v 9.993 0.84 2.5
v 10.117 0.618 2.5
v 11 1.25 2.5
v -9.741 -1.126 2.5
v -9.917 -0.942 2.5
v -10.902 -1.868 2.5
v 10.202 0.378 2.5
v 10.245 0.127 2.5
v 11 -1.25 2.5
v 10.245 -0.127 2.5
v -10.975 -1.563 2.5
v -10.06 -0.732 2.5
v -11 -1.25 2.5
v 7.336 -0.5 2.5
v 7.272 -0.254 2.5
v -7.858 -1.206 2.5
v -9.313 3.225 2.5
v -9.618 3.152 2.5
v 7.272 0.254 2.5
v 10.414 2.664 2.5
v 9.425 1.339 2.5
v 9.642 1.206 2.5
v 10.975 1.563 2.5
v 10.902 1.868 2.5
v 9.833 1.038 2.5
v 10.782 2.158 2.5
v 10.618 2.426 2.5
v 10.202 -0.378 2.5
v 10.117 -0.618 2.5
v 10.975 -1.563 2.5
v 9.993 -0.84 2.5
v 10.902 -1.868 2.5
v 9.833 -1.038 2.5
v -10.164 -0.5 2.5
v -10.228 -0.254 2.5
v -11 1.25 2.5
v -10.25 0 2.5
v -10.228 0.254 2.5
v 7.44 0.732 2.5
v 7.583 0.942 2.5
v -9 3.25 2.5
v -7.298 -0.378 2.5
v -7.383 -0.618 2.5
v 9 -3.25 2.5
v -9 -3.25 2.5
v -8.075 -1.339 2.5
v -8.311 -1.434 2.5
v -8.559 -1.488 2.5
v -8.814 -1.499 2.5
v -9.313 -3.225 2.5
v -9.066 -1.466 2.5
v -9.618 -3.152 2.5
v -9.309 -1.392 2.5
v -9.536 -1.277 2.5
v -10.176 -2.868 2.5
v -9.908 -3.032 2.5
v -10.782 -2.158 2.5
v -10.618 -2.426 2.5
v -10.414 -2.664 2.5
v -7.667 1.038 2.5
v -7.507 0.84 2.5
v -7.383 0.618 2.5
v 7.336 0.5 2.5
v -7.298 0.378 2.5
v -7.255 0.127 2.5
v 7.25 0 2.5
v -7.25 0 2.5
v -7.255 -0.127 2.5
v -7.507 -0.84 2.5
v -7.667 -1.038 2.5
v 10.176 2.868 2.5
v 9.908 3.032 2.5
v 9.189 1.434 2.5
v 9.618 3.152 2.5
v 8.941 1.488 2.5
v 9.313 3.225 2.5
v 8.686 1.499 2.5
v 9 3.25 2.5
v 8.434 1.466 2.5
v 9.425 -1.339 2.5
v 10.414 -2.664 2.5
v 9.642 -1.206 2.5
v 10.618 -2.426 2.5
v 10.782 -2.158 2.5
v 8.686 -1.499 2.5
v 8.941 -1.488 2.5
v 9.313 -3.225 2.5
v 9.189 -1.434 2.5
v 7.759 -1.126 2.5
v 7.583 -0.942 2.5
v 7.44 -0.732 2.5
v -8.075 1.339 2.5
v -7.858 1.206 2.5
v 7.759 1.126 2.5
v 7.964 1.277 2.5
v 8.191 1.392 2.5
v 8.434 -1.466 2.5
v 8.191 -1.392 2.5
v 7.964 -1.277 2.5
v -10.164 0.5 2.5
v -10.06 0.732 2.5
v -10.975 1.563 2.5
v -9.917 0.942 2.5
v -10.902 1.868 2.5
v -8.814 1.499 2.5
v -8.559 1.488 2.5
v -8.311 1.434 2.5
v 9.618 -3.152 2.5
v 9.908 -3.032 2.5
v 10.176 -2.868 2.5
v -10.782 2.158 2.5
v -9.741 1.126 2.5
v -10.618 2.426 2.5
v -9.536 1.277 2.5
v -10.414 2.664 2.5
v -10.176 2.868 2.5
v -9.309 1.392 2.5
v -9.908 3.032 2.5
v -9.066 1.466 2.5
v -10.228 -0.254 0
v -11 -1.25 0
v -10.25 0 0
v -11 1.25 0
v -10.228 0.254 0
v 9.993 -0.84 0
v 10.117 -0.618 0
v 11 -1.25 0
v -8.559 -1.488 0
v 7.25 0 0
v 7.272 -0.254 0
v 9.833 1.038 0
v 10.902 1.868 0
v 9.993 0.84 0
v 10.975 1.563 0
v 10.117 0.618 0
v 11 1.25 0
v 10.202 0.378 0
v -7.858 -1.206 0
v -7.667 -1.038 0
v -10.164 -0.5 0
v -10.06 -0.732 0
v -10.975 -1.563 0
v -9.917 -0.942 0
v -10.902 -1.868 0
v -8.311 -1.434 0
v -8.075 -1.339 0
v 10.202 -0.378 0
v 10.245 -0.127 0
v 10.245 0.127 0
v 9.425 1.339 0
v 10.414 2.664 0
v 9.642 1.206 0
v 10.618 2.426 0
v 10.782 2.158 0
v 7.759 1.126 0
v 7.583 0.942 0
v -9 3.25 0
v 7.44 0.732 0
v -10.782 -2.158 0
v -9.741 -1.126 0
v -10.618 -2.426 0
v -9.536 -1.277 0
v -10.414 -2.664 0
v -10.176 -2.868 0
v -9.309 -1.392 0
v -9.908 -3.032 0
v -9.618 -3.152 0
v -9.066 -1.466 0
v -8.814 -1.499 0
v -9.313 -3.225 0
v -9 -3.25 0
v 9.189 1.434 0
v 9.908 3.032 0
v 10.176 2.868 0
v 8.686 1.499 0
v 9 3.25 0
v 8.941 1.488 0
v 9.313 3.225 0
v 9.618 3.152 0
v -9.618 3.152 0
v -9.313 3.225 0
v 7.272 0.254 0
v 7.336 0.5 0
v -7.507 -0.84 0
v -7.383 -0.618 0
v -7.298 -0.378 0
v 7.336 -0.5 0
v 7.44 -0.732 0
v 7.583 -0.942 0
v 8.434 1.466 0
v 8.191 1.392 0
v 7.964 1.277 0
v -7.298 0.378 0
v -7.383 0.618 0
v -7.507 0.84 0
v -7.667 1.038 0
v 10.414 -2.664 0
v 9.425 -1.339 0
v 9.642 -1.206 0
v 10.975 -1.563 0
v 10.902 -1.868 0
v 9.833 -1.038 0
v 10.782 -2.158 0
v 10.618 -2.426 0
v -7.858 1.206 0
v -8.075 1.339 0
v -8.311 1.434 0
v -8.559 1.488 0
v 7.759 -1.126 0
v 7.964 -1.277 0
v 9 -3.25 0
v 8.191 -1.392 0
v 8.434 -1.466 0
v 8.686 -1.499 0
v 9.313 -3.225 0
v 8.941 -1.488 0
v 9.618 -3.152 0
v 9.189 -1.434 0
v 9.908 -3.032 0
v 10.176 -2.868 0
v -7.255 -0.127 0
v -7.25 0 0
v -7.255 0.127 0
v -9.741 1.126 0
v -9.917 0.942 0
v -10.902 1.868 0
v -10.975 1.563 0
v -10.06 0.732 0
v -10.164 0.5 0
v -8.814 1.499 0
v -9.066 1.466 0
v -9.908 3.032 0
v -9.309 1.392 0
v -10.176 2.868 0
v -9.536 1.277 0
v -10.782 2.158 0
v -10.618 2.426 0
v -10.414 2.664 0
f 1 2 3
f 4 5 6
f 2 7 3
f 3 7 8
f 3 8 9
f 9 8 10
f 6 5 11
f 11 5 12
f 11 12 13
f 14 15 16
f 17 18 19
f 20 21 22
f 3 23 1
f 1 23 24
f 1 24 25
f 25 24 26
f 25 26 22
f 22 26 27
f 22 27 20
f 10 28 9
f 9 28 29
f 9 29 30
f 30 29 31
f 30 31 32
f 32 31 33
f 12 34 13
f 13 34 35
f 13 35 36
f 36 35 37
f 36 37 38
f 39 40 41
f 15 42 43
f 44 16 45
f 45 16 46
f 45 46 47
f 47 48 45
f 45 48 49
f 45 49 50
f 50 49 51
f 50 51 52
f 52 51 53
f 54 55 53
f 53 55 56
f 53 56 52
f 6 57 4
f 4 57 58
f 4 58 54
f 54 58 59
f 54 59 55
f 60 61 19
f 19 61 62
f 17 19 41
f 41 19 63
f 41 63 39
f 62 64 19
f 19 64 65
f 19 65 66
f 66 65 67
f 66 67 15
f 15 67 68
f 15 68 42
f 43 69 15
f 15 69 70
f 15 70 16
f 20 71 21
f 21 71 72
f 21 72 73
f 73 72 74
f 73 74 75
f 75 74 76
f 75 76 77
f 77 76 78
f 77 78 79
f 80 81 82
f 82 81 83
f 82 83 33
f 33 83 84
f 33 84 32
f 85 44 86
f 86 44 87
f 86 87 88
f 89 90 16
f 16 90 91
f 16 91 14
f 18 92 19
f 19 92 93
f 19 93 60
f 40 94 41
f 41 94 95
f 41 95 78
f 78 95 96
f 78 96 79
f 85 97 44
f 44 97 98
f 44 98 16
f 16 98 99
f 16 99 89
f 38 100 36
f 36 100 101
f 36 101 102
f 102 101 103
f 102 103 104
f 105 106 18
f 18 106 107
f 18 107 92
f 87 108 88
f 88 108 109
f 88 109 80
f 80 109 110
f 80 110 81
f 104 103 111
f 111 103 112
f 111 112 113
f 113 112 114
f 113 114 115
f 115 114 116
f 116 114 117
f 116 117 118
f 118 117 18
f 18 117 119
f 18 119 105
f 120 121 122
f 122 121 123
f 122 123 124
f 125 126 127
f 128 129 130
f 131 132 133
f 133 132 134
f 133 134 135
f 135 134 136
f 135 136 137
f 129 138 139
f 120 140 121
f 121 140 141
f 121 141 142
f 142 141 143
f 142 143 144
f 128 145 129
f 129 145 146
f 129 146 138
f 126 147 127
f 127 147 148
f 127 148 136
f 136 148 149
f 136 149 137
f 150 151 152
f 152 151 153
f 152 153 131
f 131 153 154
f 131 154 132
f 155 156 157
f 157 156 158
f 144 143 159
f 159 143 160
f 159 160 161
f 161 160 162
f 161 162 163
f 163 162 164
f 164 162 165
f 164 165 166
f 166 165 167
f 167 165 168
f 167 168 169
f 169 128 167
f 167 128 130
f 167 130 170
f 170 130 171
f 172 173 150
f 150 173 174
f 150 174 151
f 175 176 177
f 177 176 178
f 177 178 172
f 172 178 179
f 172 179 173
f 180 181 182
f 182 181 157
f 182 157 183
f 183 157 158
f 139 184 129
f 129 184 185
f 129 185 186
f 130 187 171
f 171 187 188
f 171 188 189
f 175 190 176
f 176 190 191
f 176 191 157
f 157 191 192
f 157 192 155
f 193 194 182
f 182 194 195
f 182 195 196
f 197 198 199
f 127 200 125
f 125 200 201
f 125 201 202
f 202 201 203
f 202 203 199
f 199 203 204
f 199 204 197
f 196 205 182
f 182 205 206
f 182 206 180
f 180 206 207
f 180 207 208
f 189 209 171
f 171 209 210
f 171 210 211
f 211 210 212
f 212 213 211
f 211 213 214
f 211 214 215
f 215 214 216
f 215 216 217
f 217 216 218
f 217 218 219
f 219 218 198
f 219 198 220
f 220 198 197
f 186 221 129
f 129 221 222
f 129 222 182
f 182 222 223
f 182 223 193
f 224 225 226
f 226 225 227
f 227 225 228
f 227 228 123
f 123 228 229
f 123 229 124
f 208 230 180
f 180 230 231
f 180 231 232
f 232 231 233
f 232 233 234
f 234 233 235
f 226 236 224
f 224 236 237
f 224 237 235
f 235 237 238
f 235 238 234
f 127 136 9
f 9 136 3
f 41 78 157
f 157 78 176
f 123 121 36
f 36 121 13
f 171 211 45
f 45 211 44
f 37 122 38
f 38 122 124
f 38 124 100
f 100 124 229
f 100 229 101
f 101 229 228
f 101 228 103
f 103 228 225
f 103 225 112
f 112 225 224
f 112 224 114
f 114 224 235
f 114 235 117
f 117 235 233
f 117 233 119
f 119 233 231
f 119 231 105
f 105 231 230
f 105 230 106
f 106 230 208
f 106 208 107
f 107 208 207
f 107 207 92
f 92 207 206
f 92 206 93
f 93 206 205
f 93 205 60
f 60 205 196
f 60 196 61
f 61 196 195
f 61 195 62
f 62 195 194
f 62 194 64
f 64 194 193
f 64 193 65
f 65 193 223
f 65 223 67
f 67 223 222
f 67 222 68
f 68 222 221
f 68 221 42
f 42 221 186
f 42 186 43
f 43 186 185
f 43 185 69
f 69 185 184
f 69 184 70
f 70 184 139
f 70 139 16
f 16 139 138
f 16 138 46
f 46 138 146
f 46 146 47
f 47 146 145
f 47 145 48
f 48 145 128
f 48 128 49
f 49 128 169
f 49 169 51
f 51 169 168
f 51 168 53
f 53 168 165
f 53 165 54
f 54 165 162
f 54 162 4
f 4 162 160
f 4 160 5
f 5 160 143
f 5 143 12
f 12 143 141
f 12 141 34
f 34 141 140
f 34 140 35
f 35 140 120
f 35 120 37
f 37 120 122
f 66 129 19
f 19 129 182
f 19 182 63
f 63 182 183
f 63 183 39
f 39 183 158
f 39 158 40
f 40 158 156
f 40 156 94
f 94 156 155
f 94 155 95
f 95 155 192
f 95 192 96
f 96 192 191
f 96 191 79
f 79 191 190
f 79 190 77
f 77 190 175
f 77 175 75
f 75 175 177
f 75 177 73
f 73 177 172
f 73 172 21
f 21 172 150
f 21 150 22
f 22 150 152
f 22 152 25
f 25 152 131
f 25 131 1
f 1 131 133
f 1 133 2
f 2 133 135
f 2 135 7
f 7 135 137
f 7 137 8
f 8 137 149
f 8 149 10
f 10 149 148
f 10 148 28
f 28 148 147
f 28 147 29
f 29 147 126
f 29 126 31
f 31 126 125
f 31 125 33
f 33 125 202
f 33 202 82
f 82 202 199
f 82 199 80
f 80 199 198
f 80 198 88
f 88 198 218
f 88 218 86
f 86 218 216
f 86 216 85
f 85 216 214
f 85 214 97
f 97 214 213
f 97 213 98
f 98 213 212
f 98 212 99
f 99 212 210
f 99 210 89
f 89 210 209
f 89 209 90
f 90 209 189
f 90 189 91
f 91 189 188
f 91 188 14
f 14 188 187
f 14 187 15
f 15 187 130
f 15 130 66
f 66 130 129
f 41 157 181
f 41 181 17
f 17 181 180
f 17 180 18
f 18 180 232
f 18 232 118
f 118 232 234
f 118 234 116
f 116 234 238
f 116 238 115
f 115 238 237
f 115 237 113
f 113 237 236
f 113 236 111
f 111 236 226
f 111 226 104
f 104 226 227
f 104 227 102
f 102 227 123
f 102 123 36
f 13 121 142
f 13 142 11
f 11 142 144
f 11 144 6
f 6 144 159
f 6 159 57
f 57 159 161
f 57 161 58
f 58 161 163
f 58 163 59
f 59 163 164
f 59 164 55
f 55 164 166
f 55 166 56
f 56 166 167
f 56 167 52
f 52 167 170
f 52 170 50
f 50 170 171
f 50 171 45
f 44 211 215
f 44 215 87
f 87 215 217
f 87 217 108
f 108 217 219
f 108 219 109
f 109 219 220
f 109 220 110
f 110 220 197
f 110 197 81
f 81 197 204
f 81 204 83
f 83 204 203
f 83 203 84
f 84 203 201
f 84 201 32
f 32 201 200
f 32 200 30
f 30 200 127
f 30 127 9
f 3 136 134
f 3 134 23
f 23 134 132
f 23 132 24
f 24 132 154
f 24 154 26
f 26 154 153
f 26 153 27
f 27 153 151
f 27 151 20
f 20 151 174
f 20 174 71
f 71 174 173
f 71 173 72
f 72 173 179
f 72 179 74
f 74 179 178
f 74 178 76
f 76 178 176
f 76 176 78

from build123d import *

# Parameters (mm, degrees)
SKETCH1_W           = 22
SKETCH1_H           = 6.5
SKETCH1_R           = 1.5
BOSS_EXTRUDE1_DEPTH = 2.5
FILLET4_R           = 2


with BuildPart() as part:
    # Sketch1 → Boss-Extrude1 (new body)
    with BuildSketch(Plane.XY):
        Rectangle(SKETCH1_W, SKETCH1_H)
        with Locations((-8.75, 0)):
            Circle(SKETCH1_R, mode=Mode.SUBTRACT)
        with Locations(Location((8.75, 0, 0), (0, 0, 180))):
            Circle(SKETCH1_R, mode=Mode.SUBTRACT)
    extrude(amount=BOSS_EXTRUDE1_DEPTH)

    # Fillet4
    fillet4_edges = [part.edges().sort_by_distance(p)[0] for p in [
        (11, -3.25, 1.25),
        (-11, -3.25, 1.25),
        (-11, 3.25, 1.25),
        (11, 3.25, 1.25),
    ]]
    fillet(fillet4_edges, radius=FILLET4_R)


solid = part.part
